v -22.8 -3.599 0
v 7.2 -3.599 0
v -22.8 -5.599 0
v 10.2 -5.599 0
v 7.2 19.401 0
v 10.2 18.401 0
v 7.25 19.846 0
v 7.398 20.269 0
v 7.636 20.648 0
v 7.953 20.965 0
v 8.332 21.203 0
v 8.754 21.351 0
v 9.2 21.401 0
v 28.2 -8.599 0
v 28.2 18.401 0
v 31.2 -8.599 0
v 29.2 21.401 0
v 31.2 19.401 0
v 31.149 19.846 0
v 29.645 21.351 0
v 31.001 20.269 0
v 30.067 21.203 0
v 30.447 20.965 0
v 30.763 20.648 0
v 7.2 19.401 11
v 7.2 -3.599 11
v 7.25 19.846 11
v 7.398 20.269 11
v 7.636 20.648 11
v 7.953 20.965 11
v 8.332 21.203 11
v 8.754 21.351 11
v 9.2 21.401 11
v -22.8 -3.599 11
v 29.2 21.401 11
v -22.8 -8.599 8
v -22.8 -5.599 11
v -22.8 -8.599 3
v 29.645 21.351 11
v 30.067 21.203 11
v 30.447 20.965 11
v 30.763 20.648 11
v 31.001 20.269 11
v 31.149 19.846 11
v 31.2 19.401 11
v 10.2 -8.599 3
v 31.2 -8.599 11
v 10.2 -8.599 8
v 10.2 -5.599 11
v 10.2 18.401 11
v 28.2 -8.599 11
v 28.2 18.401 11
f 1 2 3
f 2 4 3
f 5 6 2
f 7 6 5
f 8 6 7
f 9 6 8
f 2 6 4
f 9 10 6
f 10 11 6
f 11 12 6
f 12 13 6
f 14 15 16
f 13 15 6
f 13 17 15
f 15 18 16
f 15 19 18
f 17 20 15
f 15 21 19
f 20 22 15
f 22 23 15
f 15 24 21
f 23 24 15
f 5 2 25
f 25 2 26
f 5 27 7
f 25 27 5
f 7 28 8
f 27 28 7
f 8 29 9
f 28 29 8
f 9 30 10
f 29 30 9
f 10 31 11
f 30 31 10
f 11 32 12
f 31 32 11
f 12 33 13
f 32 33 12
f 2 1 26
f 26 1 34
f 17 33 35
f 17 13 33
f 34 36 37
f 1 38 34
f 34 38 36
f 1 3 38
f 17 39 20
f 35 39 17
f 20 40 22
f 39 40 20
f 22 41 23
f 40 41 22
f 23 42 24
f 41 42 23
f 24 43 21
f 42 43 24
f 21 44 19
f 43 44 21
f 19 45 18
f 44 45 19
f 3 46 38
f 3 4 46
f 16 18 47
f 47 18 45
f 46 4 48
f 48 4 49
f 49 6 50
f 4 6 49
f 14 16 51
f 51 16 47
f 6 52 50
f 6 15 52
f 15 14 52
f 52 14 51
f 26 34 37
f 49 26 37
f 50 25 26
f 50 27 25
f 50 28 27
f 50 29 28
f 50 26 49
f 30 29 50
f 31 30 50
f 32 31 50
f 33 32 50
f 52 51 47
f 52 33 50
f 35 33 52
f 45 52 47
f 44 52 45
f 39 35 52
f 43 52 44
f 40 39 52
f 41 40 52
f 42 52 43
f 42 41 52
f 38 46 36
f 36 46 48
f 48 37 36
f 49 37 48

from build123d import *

# Parameters (mm, degrees)
PAD_DEPTH    = 11
CHAMFER_SIZE = 3
FILLET_R     = 2


with BuildPart() as part:
    # Sketch → Pad (new body)
    with BuildSketch(Plane.XY):
        Polygon((-22.800474, -3.599016), (-22.800474, -8.599016), (10.199526, -8.599016), (10.199526, 18.400984), (28.199526, 18.400984), (28.199526, -8.599016), (31.199526, -8.599016), (31.199526, 21.400984), (7.199526, 21.400984), (7.199526, -3.599016), align=None)
    extrude(amount=PAD_DEPTH)

    # Chamfer
    chamfer_edges = [part.edges().sort_by_distance(p)[0] for p in [
        (-6.300474, -8.599016, 0),
        (-6.300474, -8.599016, 11),
    ]]
    chamfer(chamfer_edges, length=CHAMFER_SIZE)

    # Fillet
    fillet_edges = [part.edges().sort_by_distance(p)[0] for p in [
        (31.199526, 21.400984, 5.5),
        (7.199526, 21.400984, 5.5),
    ]]
    fillet(fillet_edges, radius=FILLET_R)


solid = part.part
